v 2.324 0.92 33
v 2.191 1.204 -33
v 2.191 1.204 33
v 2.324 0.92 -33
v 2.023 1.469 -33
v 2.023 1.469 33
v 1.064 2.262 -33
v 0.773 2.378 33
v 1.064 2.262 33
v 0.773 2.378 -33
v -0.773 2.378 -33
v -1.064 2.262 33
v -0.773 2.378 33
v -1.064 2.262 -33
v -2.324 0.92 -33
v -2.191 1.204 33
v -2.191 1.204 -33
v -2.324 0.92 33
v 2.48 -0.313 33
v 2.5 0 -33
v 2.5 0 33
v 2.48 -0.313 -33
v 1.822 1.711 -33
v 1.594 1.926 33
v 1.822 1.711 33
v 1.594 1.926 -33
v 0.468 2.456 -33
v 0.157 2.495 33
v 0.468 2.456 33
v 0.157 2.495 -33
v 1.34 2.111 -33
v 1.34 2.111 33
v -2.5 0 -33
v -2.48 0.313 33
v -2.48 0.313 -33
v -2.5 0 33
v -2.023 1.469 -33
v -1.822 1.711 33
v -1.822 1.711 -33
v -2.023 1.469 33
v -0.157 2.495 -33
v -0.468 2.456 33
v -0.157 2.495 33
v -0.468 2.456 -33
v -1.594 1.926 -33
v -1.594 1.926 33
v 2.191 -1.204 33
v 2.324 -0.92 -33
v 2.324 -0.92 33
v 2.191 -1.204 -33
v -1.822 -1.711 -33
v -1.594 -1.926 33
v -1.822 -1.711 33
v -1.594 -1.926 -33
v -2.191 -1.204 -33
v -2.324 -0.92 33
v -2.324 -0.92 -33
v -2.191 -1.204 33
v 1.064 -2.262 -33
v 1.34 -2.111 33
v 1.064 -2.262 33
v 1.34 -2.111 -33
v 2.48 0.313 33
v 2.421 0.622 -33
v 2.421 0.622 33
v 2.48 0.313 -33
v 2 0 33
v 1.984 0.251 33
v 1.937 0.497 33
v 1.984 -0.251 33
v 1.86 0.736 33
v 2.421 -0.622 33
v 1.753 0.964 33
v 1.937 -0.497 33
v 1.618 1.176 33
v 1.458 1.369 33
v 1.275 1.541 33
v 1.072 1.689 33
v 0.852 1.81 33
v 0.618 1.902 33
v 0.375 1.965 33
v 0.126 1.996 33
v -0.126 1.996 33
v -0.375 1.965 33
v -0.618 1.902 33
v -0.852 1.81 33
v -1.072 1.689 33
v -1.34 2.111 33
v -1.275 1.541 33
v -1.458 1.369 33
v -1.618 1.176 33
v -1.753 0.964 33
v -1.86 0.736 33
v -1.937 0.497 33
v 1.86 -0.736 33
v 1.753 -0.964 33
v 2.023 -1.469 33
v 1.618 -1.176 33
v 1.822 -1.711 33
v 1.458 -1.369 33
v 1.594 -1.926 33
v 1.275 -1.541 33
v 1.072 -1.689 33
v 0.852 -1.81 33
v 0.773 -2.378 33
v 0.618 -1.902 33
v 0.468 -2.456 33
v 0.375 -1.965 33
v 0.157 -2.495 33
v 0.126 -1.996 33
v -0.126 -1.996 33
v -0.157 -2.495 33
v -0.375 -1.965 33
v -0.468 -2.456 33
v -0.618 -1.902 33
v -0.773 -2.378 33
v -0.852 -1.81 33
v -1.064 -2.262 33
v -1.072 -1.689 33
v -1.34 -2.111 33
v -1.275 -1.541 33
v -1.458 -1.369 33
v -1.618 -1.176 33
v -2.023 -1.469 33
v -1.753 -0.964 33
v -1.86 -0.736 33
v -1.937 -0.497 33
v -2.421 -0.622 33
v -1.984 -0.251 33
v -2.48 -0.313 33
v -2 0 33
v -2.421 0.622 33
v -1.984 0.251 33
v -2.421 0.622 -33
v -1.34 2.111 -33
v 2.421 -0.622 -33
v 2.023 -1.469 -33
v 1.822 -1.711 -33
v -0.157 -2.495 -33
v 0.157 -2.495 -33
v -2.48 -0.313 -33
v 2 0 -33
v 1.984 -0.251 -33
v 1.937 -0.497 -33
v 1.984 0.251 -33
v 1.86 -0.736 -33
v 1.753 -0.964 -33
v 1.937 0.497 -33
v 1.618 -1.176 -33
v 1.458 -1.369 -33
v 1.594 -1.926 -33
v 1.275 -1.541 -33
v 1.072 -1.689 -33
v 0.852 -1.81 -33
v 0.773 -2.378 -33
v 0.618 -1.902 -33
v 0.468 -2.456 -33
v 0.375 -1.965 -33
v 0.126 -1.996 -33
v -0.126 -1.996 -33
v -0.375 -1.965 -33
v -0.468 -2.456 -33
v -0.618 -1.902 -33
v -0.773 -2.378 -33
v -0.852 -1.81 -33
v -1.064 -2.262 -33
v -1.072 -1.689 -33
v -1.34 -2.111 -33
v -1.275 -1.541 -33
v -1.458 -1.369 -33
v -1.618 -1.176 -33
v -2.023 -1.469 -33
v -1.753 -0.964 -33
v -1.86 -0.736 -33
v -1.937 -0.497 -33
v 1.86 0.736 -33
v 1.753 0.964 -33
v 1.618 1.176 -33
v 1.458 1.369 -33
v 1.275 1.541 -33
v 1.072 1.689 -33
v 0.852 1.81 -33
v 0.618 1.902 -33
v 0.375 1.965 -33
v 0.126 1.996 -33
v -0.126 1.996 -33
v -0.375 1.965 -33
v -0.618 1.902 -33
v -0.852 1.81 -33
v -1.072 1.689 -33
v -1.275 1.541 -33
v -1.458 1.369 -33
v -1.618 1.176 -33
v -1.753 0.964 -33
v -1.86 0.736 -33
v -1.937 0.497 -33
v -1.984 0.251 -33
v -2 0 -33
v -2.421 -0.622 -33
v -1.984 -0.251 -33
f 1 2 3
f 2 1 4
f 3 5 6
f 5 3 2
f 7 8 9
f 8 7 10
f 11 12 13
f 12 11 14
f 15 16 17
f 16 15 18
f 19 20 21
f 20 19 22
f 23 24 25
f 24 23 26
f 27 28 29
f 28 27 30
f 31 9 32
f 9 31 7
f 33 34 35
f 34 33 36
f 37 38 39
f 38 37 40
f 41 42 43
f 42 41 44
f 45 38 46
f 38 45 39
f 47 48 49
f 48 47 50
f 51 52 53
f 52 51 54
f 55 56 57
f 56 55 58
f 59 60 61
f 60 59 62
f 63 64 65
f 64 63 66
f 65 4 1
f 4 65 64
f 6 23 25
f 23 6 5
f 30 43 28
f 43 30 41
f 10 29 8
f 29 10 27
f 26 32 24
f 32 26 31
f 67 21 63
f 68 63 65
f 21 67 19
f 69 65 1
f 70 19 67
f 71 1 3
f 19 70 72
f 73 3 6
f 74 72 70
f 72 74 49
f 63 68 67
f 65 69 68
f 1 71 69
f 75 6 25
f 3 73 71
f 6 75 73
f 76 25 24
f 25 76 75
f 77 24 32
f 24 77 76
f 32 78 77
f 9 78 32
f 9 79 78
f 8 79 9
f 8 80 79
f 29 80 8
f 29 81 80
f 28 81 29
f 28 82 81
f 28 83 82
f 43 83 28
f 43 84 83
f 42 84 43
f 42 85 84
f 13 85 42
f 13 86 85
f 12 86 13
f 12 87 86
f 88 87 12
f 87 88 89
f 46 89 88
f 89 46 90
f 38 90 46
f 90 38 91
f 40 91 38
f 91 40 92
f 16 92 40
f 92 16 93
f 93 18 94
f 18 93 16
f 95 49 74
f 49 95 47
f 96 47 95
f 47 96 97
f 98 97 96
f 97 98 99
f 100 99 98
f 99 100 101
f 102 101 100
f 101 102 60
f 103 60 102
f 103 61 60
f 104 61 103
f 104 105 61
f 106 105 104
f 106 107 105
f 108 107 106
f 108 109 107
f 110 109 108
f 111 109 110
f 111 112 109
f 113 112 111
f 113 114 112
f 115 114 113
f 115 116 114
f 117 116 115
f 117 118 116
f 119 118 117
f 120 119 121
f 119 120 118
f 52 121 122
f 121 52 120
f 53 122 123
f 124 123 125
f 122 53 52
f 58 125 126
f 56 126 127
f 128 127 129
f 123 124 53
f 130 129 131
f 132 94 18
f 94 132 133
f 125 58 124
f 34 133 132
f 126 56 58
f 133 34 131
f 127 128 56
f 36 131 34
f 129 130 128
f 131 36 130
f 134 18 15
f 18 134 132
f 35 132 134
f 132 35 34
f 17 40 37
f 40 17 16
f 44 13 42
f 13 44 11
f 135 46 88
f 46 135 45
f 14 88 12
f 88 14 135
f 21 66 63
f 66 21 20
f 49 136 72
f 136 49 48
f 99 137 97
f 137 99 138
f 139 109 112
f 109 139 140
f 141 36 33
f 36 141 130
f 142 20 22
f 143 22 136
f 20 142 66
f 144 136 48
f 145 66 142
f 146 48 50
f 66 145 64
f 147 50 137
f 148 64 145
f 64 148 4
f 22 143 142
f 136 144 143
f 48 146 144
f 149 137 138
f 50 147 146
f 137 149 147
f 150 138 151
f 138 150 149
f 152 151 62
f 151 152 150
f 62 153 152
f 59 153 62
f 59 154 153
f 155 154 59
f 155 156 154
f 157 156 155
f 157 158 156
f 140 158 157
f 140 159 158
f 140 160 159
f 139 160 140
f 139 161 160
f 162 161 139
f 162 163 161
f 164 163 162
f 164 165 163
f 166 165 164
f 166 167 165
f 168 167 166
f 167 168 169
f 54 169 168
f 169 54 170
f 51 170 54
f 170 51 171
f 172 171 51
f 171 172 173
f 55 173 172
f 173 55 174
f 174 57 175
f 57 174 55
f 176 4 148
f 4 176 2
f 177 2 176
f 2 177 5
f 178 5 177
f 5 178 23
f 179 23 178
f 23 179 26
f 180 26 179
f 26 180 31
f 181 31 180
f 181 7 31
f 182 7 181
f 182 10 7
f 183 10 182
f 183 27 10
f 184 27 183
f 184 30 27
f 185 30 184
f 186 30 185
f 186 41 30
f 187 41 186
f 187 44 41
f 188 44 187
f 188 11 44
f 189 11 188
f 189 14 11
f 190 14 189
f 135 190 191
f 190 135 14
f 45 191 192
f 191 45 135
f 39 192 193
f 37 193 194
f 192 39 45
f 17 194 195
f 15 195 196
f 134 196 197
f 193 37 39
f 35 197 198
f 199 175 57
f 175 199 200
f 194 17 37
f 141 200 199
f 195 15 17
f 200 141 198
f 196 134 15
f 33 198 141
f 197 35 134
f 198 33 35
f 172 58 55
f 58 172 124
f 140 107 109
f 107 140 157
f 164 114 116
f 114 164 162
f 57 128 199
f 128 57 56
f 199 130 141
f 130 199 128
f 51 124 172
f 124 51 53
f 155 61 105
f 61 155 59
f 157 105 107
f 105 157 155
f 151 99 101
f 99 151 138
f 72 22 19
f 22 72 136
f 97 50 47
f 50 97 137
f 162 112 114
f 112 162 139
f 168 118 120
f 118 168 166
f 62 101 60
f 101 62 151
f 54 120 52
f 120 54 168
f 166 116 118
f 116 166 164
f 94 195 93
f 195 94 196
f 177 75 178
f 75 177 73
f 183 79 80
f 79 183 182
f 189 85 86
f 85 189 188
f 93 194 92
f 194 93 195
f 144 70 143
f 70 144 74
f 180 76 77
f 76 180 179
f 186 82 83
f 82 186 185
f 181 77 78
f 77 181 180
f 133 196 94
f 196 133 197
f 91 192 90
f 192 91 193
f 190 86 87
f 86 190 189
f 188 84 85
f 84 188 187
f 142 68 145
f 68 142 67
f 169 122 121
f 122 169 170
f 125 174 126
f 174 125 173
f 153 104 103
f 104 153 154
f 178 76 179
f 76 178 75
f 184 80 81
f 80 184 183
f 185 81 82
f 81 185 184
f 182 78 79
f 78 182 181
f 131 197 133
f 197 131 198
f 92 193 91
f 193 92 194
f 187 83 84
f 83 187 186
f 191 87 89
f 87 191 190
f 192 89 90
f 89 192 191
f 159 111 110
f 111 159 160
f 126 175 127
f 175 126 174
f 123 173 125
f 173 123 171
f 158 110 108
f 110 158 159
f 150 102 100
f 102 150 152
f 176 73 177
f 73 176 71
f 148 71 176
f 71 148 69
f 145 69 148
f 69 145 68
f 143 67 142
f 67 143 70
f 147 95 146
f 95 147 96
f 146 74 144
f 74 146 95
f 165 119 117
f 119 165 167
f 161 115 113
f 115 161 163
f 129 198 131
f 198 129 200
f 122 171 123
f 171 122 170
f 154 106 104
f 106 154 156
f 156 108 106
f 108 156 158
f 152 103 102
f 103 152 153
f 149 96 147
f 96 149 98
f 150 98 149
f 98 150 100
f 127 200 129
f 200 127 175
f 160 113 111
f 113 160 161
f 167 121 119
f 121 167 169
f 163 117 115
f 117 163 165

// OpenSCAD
$fn = 50;


difference() {
	union() {
		translate(v = [0, 0, -33.0000000000]) {
			cylinder(h = 66, r = 2.5000000000);
		}
	}
	union() {
		translate(v = [0, 0, -100.0000000000]) {
			cylinder(h = 200, r = 2);
		}
	}
}
